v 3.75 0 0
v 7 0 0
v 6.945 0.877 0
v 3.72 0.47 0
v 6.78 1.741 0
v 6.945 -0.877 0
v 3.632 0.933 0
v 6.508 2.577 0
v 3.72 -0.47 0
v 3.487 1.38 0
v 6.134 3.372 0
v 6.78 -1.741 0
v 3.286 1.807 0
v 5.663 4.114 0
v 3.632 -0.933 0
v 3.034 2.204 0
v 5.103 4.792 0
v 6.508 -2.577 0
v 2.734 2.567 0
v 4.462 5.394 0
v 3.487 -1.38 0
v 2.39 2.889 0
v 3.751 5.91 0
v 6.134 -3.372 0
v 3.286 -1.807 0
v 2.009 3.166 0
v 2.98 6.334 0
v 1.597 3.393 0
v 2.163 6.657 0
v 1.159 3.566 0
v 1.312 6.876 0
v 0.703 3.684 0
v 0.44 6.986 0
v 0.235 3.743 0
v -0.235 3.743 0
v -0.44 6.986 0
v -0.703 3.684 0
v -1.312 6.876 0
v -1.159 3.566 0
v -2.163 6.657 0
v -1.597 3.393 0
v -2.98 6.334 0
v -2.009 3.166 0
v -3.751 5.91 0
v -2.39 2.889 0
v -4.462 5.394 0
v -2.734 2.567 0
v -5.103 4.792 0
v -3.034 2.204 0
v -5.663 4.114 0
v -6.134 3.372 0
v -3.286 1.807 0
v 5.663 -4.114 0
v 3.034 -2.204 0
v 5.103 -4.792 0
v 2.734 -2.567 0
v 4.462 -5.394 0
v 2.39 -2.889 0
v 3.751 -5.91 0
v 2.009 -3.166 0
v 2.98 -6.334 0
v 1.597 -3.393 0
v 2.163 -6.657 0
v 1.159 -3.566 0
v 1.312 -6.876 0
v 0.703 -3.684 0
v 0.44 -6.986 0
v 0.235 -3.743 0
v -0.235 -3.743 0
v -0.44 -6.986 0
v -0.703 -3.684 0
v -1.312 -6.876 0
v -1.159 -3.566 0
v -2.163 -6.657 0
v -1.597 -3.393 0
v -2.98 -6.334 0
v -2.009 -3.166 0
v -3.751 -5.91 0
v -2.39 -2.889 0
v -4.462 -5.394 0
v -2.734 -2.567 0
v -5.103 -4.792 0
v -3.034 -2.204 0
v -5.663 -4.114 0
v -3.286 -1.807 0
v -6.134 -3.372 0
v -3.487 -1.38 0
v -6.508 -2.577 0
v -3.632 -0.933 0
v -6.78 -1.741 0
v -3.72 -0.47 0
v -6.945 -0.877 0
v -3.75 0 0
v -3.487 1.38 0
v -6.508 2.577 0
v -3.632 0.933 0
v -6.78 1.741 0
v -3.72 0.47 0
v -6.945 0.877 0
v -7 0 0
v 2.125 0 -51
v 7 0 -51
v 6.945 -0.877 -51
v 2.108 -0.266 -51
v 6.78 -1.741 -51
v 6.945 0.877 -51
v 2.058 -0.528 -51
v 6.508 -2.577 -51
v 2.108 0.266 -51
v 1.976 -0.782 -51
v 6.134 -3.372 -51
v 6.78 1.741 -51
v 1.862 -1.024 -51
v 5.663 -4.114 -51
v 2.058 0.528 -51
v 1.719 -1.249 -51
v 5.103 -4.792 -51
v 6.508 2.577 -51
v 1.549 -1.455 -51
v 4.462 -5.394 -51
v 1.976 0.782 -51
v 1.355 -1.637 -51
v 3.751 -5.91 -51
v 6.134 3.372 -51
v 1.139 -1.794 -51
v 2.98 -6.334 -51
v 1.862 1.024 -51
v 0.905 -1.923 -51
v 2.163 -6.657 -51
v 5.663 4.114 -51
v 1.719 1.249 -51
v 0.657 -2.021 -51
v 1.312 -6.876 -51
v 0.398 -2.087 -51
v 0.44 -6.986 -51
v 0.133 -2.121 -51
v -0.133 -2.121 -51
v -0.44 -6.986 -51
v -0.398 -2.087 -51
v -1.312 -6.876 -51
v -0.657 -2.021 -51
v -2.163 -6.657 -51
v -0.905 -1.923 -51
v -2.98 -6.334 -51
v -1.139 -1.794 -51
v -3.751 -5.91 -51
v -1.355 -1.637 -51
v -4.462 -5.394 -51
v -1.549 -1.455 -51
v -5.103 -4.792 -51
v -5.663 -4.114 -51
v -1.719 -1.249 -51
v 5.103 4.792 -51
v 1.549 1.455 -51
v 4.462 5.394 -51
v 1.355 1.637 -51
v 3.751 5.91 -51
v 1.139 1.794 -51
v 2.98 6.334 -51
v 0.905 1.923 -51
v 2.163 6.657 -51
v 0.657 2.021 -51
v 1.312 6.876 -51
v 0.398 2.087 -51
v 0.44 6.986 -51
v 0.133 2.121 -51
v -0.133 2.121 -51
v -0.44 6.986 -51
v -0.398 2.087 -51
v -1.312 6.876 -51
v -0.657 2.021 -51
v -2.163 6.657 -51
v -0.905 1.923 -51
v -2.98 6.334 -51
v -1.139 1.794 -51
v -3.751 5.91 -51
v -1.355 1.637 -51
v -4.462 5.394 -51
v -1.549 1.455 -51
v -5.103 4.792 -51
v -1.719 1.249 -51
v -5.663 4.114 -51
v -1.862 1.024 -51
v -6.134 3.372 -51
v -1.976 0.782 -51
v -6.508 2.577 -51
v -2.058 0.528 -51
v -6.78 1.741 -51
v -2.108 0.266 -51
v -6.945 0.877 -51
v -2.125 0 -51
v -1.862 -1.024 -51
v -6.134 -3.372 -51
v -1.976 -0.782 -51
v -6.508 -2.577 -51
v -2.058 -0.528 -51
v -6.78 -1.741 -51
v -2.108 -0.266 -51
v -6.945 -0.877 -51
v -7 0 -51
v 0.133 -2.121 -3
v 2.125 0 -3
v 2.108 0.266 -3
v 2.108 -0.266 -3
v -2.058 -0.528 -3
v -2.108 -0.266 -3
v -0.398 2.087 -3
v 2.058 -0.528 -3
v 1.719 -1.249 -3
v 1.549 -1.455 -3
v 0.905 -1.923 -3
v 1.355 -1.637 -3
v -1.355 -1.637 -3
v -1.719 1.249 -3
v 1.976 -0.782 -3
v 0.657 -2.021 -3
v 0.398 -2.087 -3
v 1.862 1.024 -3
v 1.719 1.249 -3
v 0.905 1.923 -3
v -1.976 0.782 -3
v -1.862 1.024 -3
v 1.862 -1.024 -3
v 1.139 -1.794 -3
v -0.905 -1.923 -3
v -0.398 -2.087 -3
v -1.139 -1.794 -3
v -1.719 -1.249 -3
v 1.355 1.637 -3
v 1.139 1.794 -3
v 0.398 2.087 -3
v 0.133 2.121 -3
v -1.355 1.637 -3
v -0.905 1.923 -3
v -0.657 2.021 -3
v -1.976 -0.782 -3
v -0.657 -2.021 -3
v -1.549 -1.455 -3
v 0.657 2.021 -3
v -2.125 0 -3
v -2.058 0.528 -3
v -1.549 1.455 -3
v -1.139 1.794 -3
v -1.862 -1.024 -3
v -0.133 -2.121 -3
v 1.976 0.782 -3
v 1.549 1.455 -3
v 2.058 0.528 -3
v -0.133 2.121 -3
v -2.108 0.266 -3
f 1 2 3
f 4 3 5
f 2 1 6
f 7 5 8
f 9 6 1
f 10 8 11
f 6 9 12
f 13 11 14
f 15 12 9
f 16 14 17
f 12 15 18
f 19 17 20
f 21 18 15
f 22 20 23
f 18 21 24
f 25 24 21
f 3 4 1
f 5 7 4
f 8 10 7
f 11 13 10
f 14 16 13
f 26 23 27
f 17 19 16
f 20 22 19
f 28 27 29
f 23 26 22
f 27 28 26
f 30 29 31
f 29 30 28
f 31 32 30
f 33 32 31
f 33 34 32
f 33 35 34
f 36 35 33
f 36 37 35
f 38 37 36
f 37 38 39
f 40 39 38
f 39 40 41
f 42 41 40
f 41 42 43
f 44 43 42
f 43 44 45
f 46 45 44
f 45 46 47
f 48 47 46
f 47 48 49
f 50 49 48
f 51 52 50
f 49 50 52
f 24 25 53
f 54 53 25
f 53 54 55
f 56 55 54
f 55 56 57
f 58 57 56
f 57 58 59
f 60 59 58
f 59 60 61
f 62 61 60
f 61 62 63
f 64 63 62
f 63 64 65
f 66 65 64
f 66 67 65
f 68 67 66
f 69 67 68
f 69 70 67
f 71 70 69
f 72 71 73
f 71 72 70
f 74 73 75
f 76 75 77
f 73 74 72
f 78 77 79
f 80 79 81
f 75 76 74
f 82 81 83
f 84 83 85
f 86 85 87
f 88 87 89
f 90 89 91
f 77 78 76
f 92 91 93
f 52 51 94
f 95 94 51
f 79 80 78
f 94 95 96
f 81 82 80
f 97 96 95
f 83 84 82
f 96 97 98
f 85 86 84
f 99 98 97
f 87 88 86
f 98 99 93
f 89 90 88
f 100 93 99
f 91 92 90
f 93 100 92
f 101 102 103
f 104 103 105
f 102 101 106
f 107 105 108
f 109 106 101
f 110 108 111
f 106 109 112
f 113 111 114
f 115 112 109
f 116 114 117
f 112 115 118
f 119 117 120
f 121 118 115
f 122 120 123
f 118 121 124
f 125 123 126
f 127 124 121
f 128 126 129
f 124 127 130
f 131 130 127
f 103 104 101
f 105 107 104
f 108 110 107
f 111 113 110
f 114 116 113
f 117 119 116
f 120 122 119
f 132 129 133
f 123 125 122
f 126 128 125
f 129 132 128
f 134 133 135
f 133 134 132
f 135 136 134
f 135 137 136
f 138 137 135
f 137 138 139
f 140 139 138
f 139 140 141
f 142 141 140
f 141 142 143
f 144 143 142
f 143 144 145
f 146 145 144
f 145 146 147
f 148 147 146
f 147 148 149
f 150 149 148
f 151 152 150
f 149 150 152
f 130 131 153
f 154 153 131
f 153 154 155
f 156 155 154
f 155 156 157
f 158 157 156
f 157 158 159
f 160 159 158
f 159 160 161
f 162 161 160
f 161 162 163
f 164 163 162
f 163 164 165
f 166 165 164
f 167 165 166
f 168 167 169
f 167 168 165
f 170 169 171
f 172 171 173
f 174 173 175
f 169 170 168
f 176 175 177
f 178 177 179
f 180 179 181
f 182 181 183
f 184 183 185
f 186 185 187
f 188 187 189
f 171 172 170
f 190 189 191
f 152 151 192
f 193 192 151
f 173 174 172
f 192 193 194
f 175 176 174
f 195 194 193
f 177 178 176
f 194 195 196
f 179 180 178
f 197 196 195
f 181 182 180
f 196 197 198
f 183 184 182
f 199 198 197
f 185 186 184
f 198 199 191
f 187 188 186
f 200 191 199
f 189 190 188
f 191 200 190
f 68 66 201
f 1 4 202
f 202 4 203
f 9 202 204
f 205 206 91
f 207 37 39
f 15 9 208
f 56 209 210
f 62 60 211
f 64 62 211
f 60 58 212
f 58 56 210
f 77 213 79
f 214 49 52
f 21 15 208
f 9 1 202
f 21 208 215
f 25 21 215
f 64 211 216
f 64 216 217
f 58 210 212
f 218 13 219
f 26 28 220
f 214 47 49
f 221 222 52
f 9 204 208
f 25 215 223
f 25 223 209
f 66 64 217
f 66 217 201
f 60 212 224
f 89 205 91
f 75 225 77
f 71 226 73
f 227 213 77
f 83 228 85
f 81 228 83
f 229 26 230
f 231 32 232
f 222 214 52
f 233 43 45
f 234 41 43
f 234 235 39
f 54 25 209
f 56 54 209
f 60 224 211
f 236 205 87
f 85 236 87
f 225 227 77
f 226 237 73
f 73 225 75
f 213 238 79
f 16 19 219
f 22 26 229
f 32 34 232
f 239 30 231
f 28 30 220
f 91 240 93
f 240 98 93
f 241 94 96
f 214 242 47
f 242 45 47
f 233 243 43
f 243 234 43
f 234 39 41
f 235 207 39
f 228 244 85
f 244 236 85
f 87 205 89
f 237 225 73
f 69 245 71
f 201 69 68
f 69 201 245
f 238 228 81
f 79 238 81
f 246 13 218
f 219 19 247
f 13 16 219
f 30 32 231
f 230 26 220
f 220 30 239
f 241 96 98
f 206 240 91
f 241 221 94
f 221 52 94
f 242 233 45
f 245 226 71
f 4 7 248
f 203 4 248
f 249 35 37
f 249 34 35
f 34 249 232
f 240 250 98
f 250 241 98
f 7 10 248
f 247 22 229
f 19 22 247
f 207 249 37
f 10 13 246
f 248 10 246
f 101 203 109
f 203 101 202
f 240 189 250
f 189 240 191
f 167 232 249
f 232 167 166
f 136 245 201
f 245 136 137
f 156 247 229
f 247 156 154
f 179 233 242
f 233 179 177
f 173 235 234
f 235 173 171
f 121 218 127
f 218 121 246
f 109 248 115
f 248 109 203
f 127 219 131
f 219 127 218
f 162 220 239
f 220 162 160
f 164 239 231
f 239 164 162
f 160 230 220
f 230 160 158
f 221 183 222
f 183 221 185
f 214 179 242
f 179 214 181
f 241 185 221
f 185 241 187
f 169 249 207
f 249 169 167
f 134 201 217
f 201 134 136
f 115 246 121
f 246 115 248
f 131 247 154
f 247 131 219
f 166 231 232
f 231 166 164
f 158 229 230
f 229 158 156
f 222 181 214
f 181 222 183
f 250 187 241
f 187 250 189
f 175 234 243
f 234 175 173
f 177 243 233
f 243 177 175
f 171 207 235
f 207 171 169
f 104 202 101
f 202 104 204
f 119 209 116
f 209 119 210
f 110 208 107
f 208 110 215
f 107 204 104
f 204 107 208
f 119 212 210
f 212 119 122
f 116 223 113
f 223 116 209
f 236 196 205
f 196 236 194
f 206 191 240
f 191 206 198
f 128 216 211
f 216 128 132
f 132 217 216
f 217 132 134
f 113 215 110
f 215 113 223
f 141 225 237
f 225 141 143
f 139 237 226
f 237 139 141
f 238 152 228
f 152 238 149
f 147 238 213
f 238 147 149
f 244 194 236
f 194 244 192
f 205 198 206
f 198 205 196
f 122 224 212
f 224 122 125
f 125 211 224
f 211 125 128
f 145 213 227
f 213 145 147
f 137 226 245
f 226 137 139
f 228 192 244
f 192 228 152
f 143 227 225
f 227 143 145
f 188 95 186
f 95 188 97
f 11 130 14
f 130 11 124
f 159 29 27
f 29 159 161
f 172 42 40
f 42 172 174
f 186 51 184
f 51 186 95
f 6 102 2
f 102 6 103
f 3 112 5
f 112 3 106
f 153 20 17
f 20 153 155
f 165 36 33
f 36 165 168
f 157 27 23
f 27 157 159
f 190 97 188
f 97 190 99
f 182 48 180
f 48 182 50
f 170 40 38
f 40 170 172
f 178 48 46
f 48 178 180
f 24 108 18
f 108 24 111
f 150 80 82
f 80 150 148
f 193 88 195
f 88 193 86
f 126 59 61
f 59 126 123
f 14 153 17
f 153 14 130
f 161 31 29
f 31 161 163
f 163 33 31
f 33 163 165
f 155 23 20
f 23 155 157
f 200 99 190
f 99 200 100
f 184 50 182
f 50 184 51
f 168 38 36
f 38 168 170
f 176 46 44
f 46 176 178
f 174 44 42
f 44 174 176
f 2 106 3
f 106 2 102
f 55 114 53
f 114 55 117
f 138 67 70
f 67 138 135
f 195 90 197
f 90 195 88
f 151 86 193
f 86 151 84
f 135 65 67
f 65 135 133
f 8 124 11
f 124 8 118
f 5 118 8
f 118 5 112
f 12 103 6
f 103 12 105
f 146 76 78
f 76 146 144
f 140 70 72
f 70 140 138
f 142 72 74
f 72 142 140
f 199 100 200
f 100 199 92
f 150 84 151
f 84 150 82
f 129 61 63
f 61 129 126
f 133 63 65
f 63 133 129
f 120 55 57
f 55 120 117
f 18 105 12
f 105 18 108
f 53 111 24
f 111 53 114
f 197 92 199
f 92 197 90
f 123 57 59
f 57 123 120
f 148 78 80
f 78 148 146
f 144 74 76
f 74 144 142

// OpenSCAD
$fn = 50;


difference() {
	union() {
		translate(v = [0, 0, -51.0000000000]) {
			cylinder(h = 51, r = 7.0000000000);
		}
	}
	union() {
		translate(v = [0, 0, 0]) {
			rotate(a = [0, 0, 0]) {
				difference() {
					union() {
						#translate(v = [0, 0, -51.0000000000]) {
							cylinder(h = 51, r = 2.0000000000);
						}
						#translate(v = [0, 0, -3]) {
							cylinder(h = 3, r = 7.0000000000, r1 = 2.1250000000, r2 = 3.7500000000);
						}
						#translate(v = [0, 0, -51.0000000000]) {
							cylinder(h = 51, r = 2.1250000000);
						}
						#translate(v = [0, 0, -51.0000000000]) {
							cylinder(h = 51, r = 2.0000000000);
						}
					}
					union();
				}
			}
		}
	}
}
